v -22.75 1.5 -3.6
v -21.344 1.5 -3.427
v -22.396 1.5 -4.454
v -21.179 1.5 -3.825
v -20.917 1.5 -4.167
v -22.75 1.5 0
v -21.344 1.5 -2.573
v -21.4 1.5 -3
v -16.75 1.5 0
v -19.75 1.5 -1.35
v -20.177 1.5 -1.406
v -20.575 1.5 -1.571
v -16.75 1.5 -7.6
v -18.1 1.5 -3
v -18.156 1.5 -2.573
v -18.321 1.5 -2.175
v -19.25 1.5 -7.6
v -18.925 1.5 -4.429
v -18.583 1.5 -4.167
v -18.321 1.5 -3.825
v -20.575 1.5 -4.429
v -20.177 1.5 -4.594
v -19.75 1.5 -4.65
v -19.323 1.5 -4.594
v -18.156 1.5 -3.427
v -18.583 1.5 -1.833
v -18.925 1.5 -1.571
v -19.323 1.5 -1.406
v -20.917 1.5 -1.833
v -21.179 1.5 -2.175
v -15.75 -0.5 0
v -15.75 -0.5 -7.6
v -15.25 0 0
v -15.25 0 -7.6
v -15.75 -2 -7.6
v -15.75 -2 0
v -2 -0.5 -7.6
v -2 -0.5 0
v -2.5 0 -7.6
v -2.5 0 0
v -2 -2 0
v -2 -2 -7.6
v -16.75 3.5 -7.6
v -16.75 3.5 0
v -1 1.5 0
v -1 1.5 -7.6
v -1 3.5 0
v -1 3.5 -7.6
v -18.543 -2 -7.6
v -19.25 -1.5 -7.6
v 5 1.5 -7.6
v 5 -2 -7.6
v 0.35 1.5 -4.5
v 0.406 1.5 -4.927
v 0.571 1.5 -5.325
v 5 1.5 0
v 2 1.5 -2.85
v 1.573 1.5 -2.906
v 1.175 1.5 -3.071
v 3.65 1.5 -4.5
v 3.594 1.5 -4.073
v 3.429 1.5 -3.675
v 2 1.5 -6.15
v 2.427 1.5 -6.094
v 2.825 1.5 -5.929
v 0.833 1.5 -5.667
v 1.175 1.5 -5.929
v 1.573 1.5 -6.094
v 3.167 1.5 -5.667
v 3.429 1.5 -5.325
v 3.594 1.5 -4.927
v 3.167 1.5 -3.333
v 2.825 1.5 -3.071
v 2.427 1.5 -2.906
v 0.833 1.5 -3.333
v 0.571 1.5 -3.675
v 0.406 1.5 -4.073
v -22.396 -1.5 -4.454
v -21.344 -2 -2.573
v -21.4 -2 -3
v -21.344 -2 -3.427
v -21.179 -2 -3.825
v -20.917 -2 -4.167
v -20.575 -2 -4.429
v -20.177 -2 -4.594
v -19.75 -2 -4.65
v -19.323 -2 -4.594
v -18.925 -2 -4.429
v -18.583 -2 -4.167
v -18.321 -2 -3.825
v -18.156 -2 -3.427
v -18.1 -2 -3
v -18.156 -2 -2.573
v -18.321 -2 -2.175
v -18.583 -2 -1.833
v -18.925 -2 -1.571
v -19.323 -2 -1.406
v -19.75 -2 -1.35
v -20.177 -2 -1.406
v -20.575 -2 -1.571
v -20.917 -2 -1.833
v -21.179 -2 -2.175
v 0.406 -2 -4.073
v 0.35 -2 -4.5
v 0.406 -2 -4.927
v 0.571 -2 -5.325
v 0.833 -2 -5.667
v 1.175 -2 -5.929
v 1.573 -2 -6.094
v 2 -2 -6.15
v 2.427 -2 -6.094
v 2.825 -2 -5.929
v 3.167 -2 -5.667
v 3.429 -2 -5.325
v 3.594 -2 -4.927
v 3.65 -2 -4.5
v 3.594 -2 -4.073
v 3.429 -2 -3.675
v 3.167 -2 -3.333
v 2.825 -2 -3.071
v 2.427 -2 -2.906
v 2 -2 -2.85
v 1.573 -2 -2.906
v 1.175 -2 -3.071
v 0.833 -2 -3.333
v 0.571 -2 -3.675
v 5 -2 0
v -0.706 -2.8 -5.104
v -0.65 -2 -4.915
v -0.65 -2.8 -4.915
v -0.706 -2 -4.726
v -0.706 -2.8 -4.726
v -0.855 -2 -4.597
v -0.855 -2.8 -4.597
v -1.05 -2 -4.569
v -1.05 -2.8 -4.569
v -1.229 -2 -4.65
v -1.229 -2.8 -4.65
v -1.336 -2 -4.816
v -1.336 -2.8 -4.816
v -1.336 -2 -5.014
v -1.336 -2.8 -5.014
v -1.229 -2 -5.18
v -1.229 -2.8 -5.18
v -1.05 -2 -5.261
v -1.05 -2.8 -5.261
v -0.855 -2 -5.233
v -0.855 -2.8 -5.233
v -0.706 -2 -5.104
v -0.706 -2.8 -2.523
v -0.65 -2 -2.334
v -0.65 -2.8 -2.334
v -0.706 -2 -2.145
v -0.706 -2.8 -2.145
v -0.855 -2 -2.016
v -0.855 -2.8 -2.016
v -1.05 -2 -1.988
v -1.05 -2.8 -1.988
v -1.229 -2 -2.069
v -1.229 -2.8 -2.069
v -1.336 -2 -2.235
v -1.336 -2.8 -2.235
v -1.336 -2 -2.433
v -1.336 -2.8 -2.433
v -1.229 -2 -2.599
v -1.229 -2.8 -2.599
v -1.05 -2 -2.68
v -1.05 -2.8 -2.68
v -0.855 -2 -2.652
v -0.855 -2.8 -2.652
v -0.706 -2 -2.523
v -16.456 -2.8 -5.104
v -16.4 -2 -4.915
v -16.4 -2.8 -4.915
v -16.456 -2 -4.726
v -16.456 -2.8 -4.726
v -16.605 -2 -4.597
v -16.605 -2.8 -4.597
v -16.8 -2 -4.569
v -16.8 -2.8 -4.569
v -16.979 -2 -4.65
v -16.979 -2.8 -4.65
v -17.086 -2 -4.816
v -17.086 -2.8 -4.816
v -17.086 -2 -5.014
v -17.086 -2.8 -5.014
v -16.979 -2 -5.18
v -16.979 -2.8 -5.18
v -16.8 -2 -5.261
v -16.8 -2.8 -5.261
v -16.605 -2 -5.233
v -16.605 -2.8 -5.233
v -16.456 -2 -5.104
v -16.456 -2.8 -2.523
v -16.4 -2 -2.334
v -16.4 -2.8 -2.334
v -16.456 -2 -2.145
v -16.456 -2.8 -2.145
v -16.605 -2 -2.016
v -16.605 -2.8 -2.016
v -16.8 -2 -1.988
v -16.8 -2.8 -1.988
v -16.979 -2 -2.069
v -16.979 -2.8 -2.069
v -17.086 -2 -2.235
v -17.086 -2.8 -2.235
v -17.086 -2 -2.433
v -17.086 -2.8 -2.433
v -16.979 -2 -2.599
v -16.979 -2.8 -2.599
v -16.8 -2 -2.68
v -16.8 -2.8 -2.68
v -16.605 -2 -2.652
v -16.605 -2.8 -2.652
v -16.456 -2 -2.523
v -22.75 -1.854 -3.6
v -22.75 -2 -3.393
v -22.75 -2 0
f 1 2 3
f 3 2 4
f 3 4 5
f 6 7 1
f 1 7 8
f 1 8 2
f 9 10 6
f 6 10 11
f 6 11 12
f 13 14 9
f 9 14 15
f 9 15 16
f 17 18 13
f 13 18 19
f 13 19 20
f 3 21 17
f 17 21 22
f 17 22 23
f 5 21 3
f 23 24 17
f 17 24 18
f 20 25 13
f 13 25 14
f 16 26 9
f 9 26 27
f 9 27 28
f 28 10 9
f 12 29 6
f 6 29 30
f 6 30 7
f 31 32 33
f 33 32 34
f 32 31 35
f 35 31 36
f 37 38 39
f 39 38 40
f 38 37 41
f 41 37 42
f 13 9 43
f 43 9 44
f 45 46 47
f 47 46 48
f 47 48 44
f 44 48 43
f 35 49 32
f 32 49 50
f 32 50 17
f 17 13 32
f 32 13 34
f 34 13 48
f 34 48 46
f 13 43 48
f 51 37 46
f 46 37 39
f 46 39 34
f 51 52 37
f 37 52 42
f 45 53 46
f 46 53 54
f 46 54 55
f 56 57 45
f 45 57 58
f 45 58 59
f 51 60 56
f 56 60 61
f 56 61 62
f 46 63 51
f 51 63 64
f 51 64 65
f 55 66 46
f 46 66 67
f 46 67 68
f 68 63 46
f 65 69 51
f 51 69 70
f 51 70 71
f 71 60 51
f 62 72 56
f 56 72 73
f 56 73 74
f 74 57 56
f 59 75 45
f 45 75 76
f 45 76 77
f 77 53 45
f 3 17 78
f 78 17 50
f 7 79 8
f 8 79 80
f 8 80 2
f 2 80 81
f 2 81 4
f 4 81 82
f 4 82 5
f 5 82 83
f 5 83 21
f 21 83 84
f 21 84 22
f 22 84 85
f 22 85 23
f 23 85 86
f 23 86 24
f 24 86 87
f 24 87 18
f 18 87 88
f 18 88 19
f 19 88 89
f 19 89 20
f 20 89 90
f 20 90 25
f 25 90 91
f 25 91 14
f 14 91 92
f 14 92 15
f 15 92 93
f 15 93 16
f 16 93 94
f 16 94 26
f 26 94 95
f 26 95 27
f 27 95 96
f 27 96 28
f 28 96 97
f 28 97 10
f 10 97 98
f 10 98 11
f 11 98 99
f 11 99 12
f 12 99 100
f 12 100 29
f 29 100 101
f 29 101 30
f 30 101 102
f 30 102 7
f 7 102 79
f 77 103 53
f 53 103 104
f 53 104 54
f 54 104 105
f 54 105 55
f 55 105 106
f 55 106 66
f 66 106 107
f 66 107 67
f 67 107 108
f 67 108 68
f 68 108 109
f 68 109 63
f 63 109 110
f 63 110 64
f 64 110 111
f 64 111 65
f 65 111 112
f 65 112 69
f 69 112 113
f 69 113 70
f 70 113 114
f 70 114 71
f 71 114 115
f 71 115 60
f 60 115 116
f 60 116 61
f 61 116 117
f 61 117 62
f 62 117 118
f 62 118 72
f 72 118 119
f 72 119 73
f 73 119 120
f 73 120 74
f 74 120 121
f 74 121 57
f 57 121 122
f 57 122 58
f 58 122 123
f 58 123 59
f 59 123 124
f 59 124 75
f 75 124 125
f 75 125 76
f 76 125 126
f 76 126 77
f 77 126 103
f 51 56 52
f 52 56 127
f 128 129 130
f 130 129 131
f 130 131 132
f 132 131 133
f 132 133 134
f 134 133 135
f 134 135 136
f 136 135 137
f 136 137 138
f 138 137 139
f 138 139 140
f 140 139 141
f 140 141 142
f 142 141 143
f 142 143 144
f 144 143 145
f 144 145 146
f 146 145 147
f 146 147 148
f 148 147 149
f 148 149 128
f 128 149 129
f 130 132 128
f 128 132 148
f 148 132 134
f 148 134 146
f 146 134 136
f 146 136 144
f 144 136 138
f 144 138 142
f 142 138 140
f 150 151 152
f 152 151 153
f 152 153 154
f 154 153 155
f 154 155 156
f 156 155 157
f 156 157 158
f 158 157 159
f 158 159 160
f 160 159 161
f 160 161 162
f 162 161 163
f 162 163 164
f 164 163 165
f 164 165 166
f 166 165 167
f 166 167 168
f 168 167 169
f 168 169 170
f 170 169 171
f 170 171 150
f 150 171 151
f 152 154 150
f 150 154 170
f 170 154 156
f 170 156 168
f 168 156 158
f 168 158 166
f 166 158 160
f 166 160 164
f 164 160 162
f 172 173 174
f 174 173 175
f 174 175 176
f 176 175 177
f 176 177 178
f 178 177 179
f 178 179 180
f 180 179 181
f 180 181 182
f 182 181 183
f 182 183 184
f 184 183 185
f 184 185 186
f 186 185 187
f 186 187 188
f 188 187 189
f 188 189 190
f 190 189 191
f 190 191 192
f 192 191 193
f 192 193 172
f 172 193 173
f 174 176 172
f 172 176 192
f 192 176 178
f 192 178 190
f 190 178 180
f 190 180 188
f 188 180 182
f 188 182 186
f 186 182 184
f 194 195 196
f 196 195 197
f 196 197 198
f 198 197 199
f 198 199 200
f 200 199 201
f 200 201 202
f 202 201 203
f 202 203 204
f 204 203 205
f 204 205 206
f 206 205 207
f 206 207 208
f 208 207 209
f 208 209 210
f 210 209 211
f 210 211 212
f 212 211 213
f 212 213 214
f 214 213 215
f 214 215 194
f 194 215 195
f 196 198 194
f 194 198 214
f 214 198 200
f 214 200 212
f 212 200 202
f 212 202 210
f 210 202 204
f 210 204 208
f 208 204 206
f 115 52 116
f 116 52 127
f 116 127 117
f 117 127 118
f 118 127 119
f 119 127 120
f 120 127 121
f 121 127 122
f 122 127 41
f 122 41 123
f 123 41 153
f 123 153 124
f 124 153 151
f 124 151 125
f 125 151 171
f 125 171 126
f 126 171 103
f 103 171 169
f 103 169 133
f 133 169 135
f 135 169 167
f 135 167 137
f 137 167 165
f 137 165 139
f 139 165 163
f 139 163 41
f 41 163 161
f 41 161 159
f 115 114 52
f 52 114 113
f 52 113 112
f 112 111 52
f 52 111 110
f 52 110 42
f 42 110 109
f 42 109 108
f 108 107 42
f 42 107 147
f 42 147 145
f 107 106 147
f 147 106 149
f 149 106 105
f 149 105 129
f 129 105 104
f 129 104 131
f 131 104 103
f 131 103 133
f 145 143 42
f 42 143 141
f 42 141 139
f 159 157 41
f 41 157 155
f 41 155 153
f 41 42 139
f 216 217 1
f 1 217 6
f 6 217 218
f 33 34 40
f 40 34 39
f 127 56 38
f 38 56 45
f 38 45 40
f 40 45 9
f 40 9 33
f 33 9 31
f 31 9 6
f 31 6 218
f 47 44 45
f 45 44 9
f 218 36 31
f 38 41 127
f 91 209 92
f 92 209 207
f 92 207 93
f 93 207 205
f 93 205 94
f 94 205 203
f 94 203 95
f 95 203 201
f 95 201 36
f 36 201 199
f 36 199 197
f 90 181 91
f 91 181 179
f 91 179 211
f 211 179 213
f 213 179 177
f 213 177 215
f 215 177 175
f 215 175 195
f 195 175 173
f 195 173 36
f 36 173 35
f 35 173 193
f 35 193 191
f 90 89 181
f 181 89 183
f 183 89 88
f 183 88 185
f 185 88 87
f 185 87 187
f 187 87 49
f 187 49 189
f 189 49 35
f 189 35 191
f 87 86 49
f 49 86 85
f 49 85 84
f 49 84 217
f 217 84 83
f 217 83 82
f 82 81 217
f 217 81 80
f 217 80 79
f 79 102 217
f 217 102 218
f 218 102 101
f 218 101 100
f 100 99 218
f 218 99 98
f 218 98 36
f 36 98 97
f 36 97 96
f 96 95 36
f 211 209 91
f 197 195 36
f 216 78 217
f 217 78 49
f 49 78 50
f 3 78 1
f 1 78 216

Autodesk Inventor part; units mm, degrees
ref_plane "YZ Plane" through (0, 0, 0) normal (1, 0, 0) x (0, 1, 0)
ref_plane "XZ Plane" through (0, 0, 0) normal (0, 1, 0) x (-1, 0, 0)
ref_plane "XY Plane" through (0, 0, 0) normal (0, 0, 1) x (1, 0, 0)
sketch "Sketch1" plane through (0, 0, 0) normal (0, 1, 0) x (-1, 0, 0)
  line L0 (0, 0) -> (17.75, 0)
  line L1 (17.75, 0) -> (17.75, -7)
  line L2 (17.75, -7) -> (0, -7)
  line L3 (0, -7) -> (0, 0)
  dimension "d0" = 17.75
  dimension "d1" = 7
extrude "Extrusion1" add sketch "Sketch1" along normal blind 2
sketch "Sketch2" plane through (0, 0, 0) normal (0, -1, 0) x (1, 0, 0)
  line L0 (-17.75, 0) -> (0, 0) projected
  line L1 (0, -7) -> (-17.75, -7) projected
  line L2 (0, 0) -> (-2, 0)
  line L3 (-2, 0) -> (-2, -7)
  line L4 (-2, -7) -> (0, -7)
  line L5 (0, -7) -> (0, 0)
  line L6 (-17.75, -7) -> (-17.75, 0) projected
  line L7 (-17.75, 0) -> (-15.75, 0)
  line L8 (-15.75, 0) -> (-15.75, -7)
  line L9 (-15.75, -7) -> (-17.75, -7)
  line L10 (-17.75, -7) -> (-17.75, 0)
  dimension "d4" = 2
  dimension "d5" = 2
extrude "Extrusion2" add sketch "Sketch2" along normal blind 2 contours L0 L8 L1 L6 | L0 L5 L1 L3
sketch "Sketch3" plane through (0, -2, 0) normal (0, -1, 0) x (1, 0, 0)
  line L0 (0, 0) -> (-1, 0)
  line L1 (0, 0) -> (-2, 0) projected
  line L2 (-1, 0) -> (-1, -2.334)
  line L3 (-1, 0) -> (-1, -4.915)
  circle A0 centre (-1, -2.334) radius 0.35
  circle A1 centre (-1, -4.915) radius 0.35
  line L4 (0, 0) -> (0, -7) projected
  line L5 (-17.75, -7) -> (-17.75, 0) projected
  line L6 (0, 0) -> (-17.75, 0)
  line L7 (-15.75, 0) -> (-2, 0) projected
  line L8 (-8.875, 0) -> (-8.875, -0.7455)
  circle A2 centre (-16.75, -2.334) radius 0.35
  circle A3 centre (-16.75, -4.915) radius 0.35
  dimension "d8" = 1
  dimension "d9" = 2.334
  dimension "d10" = 4.915
  dimension "d11" = 0.7
  dimension "d12" = 0.7
extrude "Extrusion3" add sketch "Sketch3" along normal blind 0.8
sketch "Sketch4" plane through (0, 2, -7) normal (0, 0, -1) x (-1, 0, 0)
  line L0 (0, 0) -> (0, -4) projected
  line L1 (0, -4) -> (-4, -4)
  line L2 (-4, -4) -> (-4, -2)
  line L3 (-4, -2) -> (0, -2)
  line L4 (0, -2) -> (0, -4)
  line L5 (17.75, -4) -> (17.75, 0) projected
  line L6 (17.75, -4) -> (21.75, -4)
  line L7 (21.75, -4) -> (21.75, -2)
  line L8 (21.75, -2) -> (17.75, -2)
  line L9 (17.75, -2) -> (17.75, -4)
  dimension "d19" = 4
  dimension "d20" = 2
  dimension "d21" = 4
  dimension "d22" = 2
extrude "Extrusion4" add sketch "Sketch4" against normal blind 7
sketch "Sketch6" plane through (0, 0, -7) normal (0, 1, 0) x (1, 0, 0)
  line L0 (0, -7) -> (0, 0) projected
  line L1 (4, 0) -> (4, -7) projected
  line L2 (0, -7) -> (4, -7)
  line L3 (4, -7) -> (4, 0)
  line L4 (4, 0) -> (0, 0)
  line L5 (0, 0) -> (0, -7)
  line L6 (-15.75, -7) -> (-21.75, -7) projected
  line L7 (0, 0) -> (-17.75, 0) projected
  line L8 (-21.75, -7) -> (-17.75, -7)
  line L9 (-17.75, -7) -> (-17.75, 0)
  line L10 (-17.75, 0) -> (-21.75, 0)
  line L11 (-21.75, 0) -> (-21.75, -7)
extrude "Extrusion5" add sketch "Sketch6" along normal blind 2
sketch "Sketch8" plane through (0, 2, 0) normal (0, 1, 0) x (1, 0, 0)
  line L0 (4, 0) -> (4, 7) projected
  line L1 (4, 0) -> (5, 0)
  line L2 (5, 0) -> (5, 7)
  line L3 (5, 7) -> (4, 7)
  line L4 (4, 7) -> (4, 0)
  line L5 (-21.75, 7) -> (-21.75, 0) projected
  line L6 (-21.75, 0) -> (-22.75, 0)
  line L7 (-22.75, 0) -> (-22.75, 7)
  line L8 (-22.75, 7) -> (-21.75, 7)
  line L9 (-21.75, 7) -> (-21.75, 0)
  point P0 (0, 0)
  dimension "d33" = 1
  dimension "d34" = 1
extrude "Extrusion6" add sketch "Sketch8" against normal blind 4
sketch "Sketch9" plane through (0, 2, 0) normal (0, 1, 0) x (1, 0, 0)
  line L0 (-2, 0) -> (5, 0) projected
  line L1 (5, 0) -> (2, 0)
  line L2 (2, 0) -> (2, 4.5)
  line L3 (2, 4.5) -> (5, 4.5)
  line L4 (5, 4.5) -> (5, 0)
  line L5 (-22.75, 0) -> (5, 0) projected
  line L6 (-22.75, 0) -> (-19.75, 0)
  line L7 (-19.75, 0) -> (-19.75, 3)
  line L8 (-19.75, 3) -> (-22.75, 3)
  line L9 (-22.75, 3) -> (-22.75, 0)
  circle A0 centre (2, 4.5) radius 1.65
  circle A1 centre (-19.75, 3) radius 1.65
  point P0 (0, 0)
  dimension "d37" = 3
  dimension "d38" = 4.5
  dimension "d39" = 3
  dimension "d40" = 3
  dimension "d41" = 3.3
  dimension "d42" = 3.3
extrude "Extrusion7" cut sketch "Sketch9" against normal blind 4 contours A0 L3 L2 | L2 L3 A0 | A1 L8 L7 | L7 L8 A1
sketch "Sketch10" plane through (0, 2, 0) normal (0, 1, 0) x (1, 0, 0)
  line L0 (9.5944, -4.5178) -> (-29.7564, -4.5178)
  line L1 (-29.7564, -4.5178) -> (-29.7564, 11.1864)
  line L2 (-29.7564, 11.1864) -> (9.5944, 11.1864)
  line L3 (9.5944, 11.1864) -> (9.5944, -4.5178)
  point P0 (0, 0)
extrude "Extrusion8" cut sketch "Sketch10" against normal blind 0.5
sketch "Sketch11" plane through (0, 1.5, 0) normal (0, 1, 0) x (1, 0, 0)
  circle A0 centre (2, 4.5) radius 1.65 projected
  line L0 (2, 4.5) -> (-1, 4.5)
  circle A1 centre (-19.75, 3) radius 1.65 projected
  line L1 (-19.75, 3) -> (-16.75, 3)
  line L2 (-16.75, 3) -> (-16.75, 7.7148)
  line L3 (-22.75, 7) -> (5, 7) projected
  line L4 (5, 0) -> (-22.75, 0) projected
  line L5 (-16.75, 7) -> (-1, 7)
  line L6 (-1, 7) -> (-1, 0)
  line L7 (-1, 0) -> (-16.75, 0)
  line L8 (-16.75, 0) -> (-16.75, 7)
  point P0 (0, 0)
  point P1 (-16.75, 0)
  point P2 (-1, 7)
  dimension "d47" = 3
  dimension "d48" = 3
extrude "Extrusion9" add sketch "Sketch11" along normal blind 2 contours L2 L3 L6 L4 L8
chamfer "Chamfer1" distance 0.5 angle 45 2 edges at (-2, 0, -3.5) (-15.75, 0, -3.5)
sketch "Sketch12" plane through (0, -2, 0) normal (0, -1, 0) x (1, 0, 0)
  line L0 (-15.75, 0) -> (-15.75, -7) projected
  line L1 (-15.75, -7) -> (-22.75, -7) projected
  line L2 (-15.75, 0) -> (-17.75, 0)
  line L3 (-17.75, 0) -> (-17.75, -7)
  line L4 (-17.75, -7) -> (-15.75, -7)
  line L5 (-15.75, -7) -> (-15.75, 0)
  line L6 (-22.75, 0) -> (-22.75, -7) projected
  line L7 (-17.75, -7) -> (-22.75, -7)
  line L8 (-22.75, -7) -> (-22.75, 0)
  line L9 (-22.75, 0) -> (-17.75, 0)
  line L10 (-17.75, 0) -> (-17.75, -7)
  point P0 (0, 0)
  dimension "d57" = 2
sketch "Sketch13" plane through (-15.75, -2, -7) normal (0, 0, -1) x (-1, 0, 0)
  line L0 (0, 0) -> (7, 0) projected
  line L1 (1, 3.5) -> (7, 3.5) projected
  line L2 (0, 0) -> (7, 0)
  line L3 (7, 0) -> (7, 3.5)
  line L4 (7, 3.5) -> (0, 3.5)
  line L5 (0, 1.5) -> (0, 0)
  line L6 (-13.75, 0) -> (-20.75, 0) projected
  line L7 (-20.75, 3.5) -> (-20.75, 0) projected
  line L8 (-13.75, 0) -> (-20.75, 0)
  line L9 (-20.75, 0) -> (-20.75, 3.5)
  line L10 (-20.75, 3.5) -> (-13.75, 3.5)
  line L11 (-14.75, 5.5) -> (1, 5.5) projected
  line L12 (-14.75, 5.5) -> (1, 5.5)
  line L13 (1, 5.5) -> (1, 2)
  line L14 (-14.75, 2) -> (-14.75, 5.5)
  line L15 (0, 1.5) -> (-0.5, 2) projected
  line L16 (0, 1.5) -> (-0.5, 2)
  line L17 (-13.75, 1.5) -> (-13.75, 0) projected
  line L18 (-13.25, 2) -> (-13.75, 1.5) projected
  line L19 (-13.75, 1.5) -> (-13.25, 2)
  line L20 (-13.75, 1.5) -> (-13.75, 0)
  line L21 (-0.5, 2) -> (-13.25, 2)
  point P0 (-15.75, 2)
  point P1 (-14.75, 3.5)
extrude "Extrusion10" add sketch "Sketch13" along normal blind 0.6
chamfer "Chamfer3" distance 3.5 angle 45 1 edges at (-22.75, -0.25, -7.6)
chamfer "Chamfer4" distance 0.5 angle 45 1 edges at (-21, -2, -5.85)
chamfer "Chamfer5" distance 0.5 angle 45 1 edges at (-22.75, 0, -4.1)
properties part number "IMU_clamp"
